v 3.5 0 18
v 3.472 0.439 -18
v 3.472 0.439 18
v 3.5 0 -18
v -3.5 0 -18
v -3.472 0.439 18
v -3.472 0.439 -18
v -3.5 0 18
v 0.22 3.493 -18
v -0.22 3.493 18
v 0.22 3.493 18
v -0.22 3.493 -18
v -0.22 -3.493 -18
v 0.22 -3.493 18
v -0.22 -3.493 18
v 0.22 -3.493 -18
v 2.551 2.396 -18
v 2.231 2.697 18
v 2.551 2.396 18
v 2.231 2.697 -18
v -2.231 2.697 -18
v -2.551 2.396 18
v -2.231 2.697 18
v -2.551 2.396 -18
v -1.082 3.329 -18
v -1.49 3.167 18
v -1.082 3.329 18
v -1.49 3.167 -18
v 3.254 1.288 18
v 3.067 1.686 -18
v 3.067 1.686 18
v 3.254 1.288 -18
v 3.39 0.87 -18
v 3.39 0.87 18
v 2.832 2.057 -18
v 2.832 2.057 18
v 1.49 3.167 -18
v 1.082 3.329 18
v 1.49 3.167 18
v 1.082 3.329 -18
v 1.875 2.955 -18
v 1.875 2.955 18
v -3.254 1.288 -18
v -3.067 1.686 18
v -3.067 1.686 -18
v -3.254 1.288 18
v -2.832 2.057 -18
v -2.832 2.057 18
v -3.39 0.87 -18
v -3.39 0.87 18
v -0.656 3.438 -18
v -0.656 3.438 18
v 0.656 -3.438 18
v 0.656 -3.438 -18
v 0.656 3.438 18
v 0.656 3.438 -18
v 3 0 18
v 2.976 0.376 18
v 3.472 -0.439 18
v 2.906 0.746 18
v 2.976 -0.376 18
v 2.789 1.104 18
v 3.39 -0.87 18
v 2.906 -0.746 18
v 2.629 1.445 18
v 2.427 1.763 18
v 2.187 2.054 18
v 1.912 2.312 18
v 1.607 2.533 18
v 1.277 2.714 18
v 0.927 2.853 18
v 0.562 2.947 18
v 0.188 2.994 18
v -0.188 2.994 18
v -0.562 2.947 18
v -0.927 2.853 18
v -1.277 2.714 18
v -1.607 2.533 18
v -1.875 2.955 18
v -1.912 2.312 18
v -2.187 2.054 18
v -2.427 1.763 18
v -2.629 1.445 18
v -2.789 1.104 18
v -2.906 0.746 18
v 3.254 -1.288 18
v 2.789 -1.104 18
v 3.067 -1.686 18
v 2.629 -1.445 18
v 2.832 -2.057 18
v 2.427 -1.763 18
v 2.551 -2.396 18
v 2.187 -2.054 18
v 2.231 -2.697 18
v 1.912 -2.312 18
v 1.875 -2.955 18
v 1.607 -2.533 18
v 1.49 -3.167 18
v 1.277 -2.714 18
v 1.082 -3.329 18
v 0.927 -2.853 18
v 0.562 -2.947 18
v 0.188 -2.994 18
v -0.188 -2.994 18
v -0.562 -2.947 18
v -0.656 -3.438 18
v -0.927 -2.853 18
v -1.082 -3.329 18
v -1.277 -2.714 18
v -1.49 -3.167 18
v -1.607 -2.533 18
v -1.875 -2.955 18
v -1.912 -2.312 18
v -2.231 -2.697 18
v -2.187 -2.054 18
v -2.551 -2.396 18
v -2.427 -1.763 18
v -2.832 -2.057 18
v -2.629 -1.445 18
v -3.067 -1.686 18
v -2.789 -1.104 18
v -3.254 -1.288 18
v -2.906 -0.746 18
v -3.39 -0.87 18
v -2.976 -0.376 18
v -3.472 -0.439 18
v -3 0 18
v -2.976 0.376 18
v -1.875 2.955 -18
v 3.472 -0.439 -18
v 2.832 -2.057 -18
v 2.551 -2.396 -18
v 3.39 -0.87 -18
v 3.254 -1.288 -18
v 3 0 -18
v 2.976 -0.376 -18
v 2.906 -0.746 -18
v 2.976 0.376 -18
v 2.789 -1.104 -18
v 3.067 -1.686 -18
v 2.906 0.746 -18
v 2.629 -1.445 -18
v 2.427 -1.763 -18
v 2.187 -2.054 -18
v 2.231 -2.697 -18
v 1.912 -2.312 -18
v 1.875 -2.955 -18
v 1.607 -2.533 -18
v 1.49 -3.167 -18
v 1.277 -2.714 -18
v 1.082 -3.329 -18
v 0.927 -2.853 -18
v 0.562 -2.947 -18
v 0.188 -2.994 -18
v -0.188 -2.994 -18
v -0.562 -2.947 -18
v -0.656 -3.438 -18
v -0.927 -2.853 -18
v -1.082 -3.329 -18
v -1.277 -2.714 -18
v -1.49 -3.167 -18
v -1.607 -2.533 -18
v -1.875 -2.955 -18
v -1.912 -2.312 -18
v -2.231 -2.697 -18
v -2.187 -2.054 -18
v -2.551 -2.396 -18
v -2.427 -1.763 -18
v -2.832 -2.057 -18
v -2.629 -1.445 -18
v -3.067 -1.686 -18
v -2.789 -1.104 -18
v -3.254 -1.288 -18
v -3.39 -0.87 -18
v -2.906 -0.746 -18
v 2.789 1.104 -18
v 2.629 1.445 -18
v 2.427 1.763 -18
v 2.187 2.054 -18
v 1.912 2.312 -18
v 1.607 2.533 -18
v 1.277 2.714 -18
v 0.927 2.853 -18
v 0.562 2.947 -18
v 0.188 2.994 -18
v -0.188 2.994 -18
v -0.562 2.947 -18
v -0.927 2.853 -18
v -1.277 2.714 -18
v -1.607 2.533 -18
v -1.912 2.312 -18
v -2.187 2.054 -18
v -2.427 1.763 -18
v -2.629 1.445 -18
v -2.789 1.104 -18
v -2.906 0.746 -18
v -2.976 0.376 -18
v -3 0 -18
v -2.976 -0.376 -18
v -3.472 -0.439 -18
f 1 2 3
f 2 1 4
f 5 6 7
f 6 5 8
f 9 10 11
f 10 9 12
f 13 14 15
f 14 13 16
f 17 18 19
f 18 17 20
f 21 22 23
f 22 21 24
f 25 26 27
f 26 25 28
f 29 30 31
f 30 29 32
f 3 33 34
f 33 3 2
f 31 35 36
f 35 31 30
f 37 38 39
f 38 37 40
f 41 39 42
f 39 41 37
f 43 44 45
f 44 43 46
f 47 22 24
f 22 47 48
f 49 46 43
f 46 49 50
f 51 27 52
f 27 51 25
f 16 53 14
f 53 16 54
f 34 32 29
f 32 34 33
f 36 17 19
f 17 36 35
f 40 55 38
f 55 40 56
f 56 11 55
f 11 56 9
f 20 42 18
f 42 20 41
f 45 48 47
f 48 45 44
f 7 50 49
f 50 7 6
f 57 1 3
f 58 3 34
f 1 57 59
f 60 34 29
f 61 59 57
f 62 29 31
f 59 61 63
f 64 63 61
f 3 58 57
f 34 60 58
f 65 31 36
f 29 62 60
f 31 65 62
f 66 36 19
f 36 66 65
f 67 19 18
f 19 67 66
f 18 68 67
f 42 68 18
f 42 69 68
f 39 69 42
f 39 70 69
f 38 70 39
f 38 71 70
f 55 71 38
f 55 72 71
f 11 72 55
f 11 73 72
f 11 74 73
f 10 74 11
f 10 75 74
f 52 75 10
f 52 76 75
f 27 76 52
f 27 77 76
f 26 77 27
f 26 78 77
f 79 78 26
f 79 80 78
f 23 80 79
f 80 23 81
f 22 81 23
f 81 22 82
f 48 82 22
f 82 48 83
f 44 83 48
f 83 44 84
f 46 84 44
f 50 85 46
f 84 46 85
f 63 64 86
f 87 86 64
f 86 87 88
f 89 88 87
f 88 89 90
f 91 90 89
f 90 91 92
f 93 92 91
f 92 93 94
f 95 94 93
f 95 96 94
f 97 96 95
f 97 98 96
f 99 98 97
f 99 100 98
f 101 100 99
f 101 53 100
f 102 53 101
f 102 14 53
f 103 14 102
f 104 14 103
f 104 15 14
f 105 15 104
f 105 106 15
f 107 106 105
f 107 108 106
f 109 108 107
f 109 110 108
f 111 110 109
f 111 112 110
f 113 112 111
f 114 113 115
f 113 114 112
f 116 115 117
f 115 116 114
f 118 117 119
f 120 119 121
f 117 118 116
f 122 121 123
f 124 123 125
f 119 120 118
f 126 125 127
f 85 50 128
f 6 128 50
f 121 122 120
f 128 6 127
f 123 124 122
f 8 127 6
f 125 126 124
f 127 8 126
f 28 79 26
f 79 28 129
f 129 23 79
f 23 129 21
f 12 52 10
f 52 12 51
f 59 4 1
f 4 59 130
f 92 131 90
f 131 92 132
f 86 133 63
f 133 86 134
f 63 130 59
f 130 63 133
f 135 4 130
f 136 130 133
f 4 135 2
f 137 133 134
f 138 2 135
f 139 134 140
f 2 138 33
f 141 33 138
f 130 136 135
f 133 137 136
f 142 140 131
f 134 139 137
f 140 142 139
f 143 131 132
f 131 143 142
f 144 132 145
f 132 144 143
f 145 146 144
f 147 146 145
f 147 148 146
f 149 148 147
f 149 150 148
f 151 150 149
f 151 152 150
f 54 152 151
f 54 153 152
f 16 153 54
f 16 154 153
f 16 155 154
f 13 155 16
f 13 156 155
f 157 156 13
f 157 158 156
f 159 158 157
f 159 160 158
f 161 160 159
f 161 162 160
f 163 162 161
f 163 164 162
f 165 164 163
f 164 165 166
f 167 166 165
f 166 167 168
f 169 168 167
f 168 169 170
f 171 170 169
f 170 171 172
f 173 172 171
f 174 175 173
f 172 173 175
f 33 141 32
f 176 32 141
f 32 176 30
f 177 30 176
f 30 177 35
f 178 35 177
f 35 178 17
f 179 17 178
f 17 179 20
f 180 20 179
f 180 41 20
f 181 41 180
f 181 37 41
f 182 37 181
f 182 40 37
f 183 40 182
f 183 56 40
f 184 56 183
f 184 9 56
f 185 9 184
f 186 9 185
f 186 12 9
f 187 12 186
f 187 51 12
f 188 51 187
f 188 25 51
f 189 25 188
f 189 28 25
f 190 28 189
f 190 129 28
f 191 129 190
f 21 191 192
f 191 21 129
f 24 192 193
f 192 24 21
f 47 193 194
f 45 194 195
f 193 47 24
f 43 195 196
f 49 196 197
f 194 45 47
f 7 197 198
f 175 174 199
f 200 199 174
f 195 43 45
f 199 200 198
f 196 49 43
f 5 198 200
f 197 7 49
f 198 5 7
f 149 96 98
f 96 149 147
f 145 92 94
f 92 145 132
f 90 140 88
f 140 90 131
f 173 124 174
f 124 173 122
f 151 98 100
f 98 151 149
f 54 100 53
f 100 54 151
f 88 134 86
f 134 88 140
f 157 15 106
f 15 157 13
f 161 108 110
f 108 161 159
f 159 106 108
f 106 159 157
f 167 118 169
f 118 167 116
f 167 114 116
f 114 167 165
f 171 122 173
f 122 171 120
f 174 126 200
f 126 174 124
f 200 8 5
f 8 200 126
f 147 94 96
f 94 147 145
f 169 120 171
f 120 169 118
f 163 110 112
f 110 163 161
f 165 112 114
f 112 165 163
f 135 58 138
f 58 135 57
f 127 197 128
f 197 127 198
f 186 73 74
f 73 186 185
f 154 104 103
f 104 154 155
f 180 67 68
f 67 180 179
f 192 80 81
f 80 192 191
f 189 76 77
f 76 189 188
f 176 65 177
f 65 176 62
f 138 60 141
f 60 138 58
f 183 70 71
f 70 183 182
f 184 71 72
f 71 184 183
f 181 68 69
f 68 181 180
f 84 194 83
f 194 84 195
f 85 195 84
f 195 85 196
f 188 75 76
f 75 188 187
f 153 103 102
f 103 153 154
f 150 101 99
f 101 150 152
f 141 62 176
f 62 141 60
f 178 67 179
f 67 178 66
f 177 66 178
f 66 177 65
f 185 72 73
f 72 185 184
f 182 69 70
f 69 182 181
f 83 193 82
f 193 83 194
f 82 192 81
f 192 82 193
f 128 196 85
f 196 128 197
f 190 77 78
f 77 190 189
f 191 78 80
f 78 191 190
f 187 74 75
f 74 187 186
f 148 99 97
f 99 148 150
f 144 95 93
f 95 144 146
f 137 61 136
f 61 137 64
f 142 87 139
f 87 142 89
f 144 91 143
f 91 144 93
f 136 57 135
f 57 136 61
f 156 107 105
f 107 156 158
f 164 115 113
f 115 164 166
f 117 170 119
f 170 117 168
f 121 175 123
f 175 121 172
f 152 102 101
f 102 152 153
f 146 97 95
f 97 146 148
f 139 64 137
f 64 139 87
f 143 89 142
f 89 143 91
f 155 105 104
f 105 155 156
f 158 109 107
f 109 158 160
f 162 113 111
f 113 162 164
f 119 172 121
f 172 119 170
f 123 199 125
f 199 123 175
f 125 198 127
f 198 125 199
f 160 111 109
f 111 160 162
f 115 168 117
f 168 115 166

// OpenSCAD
$fn = 50;


difference() {
	union() {
		translate(v = [0, 0, -18.0000000000]) {
			cylinder(h = 36, r = 3.5000000000);
		}
	}
	union() {
		translate(v = [0, 0, -100.0000000000]) {
			cylinder(h = 200, r = 3);
		}
	}
}
